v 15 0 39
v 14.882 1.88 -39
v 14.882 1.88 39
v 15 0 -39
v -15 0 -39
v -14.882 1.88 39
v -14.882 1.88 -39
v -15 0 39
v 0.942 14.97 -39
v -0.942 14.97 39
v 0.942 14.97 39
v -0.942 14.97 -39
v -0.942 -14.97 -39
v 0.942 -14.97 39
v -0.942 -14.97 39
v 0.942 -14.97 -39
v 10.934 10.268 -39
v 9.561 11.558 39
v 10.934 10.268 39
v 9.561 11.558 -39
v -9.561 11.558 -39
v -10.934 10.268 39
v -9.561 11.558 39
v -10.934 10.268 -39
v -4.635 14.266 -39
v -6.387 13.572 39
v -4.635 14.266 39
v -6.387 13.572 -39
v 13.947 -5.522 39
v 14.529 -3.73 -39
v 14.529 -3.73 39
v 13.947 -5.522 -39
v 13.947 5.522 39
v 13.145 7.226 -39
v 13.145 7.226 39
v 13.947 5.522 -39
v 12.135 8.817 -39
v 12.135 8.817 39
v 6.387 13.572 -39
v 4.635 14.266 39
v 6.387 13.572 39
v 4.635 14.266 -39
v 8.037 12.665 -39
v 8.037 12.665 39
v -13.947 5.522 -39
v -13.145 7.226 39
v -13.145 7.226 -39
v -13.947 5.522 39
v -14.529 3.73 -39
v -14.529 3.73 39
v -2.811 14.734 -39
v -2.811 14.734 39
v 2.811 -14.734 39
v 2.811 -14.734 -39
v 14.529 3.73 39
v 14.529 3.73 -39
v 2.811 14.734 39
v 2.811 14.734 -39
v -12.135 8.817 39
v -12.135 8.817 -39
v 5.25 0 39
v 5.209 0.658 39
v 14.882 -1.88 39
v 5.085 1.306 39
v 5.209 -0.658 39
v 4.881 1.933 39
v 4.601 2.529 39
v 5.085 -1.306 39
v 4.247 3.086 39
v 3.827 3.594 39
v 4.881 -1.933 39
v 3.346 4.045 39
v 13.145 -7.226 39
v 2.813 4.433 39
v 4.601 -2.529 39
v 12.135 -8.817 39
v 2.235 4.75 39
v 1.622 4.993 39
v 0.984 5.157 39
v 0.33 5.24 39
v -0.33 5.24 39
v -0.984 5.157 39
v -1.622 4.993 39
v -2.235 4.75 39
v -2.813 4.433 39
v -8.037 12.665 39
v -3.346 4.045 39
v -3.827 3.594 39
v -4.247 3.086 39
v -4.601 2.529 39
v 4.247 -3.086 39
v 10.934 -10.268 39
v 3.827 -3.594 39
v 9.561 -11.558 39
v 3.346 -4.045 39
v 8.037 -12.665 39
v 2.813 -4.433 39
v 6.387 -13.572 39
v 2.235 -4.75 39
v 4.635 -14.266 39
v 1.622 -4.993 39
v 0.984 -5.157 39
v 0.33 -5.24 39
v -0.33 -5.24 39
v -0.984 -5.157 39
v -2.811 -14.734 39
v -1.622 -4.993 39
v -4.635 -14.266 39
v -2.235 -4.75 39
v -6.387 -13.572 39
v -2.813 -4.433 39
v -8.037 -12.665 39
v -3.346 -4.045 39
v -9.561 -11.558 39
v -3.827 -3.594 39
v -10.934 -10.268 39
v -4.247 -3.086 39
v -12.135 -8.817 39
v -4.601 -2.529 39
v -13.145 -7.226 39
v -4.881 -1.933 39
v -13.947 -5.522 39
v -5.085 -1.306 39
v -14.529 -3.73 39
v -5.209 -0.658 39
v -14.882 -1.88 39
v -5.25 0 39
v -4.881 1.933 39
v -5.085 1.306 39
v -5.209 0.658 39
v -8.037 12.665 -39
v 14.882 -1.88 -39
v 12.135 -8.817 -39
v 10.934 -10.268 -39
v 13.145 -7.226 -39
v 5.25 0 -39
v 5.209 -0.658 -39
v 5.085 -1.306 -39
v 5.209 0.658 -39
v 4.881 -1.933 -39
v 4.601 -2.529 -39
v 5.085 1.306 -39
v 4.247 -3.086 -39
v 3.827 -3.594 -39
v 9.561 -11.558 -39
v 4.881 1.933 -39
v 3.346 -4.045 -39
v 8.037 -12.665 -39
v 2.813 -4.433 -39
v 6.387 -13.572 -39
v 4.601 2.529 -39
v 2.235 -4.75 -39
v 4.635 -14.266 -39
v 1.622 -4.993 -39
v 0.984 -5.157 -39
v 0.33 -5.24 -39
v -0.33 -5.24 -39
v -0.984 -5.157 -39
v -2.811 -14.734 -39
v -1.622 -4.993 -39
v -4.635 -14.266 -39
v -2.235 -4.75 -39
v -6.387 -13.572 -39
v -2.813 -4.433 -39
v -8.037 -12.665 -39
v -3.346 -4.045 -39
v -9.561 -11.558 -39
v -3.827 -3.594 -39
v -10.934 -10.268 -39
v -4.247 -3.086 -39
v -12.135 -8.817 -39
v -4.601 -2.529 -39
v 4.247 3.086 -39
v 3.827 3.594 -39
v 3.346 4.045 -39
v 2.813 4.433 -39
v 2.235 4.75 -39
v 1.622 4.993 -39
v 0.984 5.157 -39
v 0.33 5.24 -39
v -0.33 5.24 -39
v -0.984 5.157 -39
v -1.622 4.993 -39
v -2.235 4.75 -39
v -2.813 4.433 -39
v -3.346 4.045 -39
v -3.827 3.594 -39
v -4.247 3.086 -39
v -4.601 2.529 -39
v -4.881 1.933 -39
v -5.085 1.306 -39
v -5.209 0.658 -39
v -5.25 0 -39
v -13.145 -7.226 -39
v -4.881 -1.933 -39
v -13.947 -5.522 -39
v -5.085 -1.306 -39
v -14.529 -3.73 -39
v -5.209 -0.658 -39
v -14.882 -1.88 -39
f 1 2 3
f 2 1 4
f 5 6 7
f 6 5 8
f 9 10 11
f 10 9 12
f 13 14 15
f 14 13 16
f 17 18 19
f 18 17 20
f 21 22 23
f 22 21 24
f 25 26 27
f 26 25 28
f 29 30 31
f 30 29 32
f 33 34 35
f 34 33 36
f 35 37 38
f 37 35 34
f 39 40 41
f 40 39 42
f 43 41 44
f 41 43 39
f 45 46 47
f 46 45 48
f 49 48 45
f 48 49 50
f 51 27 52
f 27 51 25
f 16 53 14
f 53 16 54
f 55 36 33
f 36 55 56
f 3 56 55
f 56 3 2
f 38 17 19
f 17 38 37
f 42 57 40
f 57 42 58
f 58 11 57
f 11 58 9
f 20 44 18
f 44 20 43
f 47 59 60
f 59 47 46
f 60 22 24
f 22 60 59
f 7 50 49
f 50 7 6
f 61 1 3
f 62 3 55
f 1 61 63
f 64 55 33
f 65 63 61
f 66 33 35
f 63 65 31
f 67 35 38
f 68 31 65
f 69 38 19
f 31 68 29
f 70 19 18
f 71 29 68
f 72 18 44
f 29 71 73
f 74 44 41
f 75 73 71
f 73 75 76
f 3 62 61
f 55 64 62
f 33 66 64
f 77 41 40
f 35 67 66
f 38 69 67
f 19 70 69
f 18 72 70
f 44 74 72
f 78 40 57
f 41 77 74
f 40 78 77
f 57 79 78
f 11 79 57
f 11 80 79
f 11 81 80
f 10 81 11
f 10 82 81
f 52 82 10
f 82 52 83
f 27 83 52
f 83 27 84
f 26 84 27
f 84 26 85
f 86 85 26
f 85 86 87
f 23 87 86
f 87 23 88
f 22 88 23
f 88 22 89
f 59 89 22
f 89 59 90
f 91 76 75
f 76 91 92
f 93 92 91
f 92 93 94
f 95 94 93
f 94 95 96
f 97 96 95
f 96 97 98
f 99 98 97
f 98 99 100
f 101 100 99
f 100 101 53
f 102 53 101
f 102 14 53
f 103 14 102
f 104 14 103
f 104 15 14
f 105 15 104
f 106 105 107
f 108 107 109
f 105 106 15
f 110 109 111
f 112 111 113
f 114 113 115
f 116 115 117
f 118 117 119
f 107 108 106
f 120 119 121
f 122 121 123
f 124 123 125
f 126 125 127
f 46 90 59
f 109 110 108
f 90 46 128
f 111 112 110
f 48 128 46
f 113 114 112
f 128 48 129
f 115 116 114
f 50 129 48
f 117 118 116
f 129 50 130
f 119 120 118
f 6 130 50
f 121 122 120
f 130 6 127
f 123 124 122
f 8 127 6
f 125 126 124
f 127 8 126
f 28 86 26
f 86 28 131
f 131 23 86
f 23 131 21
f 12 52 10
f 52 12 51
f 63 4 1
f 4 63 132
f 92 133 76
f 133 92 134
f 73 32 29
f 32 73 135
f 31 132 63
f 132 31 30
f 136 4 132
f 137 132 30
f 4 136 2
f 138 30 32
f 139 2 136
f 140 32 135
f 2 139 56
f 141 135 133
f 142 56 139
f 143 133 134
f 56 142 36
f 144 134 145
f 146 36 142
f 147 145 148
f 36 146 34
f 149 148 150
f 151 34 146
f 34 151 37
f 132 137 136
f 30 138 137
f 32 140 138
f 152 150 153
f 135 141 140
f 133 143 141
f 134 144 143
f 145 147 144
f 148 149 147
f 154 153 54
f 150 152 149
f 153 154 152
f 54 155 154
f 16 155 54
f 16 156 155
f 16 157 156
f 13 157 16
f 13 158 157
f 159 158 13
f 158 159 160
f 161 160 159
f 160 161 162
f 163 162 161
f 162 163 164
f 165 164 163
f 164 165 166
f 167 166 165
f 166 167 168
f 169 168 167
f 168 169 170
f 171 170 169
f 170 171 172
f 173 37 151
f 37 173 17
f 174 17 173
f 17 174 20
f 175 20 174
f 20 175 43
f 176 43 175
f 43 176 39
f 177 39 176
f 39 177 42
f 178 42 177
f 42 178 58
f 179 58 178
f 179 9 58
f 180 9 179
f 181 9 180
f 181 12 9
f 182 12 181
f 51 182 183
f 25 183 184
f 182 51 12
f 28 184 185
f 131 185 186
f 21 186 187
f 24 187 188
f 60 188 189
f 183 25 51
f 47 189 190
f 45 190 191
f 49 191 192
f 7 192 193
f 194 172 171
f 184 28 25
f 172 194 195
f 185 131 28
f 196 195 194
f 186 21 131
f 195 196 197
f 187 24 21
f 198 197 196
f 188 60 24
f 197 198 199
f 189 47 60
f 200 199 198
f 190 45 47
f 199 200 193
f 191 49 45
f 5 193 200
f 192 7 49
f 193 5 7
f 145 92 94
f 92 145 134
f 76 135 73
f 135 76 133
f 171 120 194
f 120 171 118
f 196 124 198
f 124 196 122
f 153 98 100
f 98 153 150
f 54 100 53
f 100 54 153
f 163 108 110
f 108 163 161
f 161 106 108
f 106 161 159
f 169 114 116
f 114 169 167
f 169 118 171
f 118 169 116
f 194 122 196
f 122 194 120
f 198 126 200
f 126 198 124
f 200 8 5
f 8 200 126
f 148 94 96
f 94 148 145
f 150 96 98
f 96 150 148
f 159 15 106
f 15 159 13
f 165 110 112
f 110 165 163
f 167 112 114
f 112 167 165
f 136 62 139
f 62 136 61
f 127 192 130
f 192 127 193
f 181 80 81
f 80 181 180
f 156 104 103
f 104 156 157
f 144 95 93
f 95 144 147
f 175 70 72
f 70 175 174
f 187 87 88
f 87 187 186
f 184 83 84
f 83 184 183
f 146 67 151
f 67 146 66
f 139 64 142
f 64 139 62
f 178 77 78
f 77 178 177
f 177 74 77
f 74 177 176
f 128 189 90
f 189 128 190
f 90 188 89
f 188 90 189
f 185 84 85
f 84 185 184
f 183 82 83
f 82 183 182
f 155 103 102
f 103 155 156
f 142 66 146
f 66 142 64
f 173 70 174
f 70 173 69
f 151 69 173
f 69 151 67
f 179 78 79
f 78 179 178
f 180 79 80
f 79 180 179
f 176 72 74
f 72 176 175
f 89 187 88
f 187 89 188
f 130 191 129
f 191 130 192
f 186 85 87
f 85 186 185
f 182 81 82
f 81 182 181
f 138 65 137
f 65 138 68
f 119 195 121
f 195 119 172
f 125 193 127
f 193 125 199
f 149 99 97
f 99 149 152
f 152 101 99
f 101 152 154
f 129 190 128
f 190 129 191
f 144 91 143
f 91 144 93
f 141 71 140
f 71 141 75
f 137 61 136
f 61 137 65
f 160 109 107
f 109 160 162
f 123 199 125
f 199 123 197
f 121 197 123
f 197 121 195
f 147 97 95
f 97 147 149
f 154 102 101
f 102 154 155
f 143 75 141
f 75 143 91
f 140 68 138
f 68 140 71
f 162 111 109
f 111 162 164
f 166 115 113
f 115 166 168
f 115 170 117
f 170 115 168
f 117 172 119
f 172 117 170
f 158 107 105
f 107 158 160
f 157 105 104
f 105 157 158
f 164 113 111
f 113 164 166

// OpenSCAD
$fn = 50;


difference() {
	union() {
		translate(v = [0, 0, -39.0000000000]) {
			cylinder(h = 78, r = 15.0000000000);
		}
	}
	union() {
		translate(v = [0, 0, -100.0000000000]) {
			cylinder(h = 200, r = 5.2500000000);
		}
	}
}
